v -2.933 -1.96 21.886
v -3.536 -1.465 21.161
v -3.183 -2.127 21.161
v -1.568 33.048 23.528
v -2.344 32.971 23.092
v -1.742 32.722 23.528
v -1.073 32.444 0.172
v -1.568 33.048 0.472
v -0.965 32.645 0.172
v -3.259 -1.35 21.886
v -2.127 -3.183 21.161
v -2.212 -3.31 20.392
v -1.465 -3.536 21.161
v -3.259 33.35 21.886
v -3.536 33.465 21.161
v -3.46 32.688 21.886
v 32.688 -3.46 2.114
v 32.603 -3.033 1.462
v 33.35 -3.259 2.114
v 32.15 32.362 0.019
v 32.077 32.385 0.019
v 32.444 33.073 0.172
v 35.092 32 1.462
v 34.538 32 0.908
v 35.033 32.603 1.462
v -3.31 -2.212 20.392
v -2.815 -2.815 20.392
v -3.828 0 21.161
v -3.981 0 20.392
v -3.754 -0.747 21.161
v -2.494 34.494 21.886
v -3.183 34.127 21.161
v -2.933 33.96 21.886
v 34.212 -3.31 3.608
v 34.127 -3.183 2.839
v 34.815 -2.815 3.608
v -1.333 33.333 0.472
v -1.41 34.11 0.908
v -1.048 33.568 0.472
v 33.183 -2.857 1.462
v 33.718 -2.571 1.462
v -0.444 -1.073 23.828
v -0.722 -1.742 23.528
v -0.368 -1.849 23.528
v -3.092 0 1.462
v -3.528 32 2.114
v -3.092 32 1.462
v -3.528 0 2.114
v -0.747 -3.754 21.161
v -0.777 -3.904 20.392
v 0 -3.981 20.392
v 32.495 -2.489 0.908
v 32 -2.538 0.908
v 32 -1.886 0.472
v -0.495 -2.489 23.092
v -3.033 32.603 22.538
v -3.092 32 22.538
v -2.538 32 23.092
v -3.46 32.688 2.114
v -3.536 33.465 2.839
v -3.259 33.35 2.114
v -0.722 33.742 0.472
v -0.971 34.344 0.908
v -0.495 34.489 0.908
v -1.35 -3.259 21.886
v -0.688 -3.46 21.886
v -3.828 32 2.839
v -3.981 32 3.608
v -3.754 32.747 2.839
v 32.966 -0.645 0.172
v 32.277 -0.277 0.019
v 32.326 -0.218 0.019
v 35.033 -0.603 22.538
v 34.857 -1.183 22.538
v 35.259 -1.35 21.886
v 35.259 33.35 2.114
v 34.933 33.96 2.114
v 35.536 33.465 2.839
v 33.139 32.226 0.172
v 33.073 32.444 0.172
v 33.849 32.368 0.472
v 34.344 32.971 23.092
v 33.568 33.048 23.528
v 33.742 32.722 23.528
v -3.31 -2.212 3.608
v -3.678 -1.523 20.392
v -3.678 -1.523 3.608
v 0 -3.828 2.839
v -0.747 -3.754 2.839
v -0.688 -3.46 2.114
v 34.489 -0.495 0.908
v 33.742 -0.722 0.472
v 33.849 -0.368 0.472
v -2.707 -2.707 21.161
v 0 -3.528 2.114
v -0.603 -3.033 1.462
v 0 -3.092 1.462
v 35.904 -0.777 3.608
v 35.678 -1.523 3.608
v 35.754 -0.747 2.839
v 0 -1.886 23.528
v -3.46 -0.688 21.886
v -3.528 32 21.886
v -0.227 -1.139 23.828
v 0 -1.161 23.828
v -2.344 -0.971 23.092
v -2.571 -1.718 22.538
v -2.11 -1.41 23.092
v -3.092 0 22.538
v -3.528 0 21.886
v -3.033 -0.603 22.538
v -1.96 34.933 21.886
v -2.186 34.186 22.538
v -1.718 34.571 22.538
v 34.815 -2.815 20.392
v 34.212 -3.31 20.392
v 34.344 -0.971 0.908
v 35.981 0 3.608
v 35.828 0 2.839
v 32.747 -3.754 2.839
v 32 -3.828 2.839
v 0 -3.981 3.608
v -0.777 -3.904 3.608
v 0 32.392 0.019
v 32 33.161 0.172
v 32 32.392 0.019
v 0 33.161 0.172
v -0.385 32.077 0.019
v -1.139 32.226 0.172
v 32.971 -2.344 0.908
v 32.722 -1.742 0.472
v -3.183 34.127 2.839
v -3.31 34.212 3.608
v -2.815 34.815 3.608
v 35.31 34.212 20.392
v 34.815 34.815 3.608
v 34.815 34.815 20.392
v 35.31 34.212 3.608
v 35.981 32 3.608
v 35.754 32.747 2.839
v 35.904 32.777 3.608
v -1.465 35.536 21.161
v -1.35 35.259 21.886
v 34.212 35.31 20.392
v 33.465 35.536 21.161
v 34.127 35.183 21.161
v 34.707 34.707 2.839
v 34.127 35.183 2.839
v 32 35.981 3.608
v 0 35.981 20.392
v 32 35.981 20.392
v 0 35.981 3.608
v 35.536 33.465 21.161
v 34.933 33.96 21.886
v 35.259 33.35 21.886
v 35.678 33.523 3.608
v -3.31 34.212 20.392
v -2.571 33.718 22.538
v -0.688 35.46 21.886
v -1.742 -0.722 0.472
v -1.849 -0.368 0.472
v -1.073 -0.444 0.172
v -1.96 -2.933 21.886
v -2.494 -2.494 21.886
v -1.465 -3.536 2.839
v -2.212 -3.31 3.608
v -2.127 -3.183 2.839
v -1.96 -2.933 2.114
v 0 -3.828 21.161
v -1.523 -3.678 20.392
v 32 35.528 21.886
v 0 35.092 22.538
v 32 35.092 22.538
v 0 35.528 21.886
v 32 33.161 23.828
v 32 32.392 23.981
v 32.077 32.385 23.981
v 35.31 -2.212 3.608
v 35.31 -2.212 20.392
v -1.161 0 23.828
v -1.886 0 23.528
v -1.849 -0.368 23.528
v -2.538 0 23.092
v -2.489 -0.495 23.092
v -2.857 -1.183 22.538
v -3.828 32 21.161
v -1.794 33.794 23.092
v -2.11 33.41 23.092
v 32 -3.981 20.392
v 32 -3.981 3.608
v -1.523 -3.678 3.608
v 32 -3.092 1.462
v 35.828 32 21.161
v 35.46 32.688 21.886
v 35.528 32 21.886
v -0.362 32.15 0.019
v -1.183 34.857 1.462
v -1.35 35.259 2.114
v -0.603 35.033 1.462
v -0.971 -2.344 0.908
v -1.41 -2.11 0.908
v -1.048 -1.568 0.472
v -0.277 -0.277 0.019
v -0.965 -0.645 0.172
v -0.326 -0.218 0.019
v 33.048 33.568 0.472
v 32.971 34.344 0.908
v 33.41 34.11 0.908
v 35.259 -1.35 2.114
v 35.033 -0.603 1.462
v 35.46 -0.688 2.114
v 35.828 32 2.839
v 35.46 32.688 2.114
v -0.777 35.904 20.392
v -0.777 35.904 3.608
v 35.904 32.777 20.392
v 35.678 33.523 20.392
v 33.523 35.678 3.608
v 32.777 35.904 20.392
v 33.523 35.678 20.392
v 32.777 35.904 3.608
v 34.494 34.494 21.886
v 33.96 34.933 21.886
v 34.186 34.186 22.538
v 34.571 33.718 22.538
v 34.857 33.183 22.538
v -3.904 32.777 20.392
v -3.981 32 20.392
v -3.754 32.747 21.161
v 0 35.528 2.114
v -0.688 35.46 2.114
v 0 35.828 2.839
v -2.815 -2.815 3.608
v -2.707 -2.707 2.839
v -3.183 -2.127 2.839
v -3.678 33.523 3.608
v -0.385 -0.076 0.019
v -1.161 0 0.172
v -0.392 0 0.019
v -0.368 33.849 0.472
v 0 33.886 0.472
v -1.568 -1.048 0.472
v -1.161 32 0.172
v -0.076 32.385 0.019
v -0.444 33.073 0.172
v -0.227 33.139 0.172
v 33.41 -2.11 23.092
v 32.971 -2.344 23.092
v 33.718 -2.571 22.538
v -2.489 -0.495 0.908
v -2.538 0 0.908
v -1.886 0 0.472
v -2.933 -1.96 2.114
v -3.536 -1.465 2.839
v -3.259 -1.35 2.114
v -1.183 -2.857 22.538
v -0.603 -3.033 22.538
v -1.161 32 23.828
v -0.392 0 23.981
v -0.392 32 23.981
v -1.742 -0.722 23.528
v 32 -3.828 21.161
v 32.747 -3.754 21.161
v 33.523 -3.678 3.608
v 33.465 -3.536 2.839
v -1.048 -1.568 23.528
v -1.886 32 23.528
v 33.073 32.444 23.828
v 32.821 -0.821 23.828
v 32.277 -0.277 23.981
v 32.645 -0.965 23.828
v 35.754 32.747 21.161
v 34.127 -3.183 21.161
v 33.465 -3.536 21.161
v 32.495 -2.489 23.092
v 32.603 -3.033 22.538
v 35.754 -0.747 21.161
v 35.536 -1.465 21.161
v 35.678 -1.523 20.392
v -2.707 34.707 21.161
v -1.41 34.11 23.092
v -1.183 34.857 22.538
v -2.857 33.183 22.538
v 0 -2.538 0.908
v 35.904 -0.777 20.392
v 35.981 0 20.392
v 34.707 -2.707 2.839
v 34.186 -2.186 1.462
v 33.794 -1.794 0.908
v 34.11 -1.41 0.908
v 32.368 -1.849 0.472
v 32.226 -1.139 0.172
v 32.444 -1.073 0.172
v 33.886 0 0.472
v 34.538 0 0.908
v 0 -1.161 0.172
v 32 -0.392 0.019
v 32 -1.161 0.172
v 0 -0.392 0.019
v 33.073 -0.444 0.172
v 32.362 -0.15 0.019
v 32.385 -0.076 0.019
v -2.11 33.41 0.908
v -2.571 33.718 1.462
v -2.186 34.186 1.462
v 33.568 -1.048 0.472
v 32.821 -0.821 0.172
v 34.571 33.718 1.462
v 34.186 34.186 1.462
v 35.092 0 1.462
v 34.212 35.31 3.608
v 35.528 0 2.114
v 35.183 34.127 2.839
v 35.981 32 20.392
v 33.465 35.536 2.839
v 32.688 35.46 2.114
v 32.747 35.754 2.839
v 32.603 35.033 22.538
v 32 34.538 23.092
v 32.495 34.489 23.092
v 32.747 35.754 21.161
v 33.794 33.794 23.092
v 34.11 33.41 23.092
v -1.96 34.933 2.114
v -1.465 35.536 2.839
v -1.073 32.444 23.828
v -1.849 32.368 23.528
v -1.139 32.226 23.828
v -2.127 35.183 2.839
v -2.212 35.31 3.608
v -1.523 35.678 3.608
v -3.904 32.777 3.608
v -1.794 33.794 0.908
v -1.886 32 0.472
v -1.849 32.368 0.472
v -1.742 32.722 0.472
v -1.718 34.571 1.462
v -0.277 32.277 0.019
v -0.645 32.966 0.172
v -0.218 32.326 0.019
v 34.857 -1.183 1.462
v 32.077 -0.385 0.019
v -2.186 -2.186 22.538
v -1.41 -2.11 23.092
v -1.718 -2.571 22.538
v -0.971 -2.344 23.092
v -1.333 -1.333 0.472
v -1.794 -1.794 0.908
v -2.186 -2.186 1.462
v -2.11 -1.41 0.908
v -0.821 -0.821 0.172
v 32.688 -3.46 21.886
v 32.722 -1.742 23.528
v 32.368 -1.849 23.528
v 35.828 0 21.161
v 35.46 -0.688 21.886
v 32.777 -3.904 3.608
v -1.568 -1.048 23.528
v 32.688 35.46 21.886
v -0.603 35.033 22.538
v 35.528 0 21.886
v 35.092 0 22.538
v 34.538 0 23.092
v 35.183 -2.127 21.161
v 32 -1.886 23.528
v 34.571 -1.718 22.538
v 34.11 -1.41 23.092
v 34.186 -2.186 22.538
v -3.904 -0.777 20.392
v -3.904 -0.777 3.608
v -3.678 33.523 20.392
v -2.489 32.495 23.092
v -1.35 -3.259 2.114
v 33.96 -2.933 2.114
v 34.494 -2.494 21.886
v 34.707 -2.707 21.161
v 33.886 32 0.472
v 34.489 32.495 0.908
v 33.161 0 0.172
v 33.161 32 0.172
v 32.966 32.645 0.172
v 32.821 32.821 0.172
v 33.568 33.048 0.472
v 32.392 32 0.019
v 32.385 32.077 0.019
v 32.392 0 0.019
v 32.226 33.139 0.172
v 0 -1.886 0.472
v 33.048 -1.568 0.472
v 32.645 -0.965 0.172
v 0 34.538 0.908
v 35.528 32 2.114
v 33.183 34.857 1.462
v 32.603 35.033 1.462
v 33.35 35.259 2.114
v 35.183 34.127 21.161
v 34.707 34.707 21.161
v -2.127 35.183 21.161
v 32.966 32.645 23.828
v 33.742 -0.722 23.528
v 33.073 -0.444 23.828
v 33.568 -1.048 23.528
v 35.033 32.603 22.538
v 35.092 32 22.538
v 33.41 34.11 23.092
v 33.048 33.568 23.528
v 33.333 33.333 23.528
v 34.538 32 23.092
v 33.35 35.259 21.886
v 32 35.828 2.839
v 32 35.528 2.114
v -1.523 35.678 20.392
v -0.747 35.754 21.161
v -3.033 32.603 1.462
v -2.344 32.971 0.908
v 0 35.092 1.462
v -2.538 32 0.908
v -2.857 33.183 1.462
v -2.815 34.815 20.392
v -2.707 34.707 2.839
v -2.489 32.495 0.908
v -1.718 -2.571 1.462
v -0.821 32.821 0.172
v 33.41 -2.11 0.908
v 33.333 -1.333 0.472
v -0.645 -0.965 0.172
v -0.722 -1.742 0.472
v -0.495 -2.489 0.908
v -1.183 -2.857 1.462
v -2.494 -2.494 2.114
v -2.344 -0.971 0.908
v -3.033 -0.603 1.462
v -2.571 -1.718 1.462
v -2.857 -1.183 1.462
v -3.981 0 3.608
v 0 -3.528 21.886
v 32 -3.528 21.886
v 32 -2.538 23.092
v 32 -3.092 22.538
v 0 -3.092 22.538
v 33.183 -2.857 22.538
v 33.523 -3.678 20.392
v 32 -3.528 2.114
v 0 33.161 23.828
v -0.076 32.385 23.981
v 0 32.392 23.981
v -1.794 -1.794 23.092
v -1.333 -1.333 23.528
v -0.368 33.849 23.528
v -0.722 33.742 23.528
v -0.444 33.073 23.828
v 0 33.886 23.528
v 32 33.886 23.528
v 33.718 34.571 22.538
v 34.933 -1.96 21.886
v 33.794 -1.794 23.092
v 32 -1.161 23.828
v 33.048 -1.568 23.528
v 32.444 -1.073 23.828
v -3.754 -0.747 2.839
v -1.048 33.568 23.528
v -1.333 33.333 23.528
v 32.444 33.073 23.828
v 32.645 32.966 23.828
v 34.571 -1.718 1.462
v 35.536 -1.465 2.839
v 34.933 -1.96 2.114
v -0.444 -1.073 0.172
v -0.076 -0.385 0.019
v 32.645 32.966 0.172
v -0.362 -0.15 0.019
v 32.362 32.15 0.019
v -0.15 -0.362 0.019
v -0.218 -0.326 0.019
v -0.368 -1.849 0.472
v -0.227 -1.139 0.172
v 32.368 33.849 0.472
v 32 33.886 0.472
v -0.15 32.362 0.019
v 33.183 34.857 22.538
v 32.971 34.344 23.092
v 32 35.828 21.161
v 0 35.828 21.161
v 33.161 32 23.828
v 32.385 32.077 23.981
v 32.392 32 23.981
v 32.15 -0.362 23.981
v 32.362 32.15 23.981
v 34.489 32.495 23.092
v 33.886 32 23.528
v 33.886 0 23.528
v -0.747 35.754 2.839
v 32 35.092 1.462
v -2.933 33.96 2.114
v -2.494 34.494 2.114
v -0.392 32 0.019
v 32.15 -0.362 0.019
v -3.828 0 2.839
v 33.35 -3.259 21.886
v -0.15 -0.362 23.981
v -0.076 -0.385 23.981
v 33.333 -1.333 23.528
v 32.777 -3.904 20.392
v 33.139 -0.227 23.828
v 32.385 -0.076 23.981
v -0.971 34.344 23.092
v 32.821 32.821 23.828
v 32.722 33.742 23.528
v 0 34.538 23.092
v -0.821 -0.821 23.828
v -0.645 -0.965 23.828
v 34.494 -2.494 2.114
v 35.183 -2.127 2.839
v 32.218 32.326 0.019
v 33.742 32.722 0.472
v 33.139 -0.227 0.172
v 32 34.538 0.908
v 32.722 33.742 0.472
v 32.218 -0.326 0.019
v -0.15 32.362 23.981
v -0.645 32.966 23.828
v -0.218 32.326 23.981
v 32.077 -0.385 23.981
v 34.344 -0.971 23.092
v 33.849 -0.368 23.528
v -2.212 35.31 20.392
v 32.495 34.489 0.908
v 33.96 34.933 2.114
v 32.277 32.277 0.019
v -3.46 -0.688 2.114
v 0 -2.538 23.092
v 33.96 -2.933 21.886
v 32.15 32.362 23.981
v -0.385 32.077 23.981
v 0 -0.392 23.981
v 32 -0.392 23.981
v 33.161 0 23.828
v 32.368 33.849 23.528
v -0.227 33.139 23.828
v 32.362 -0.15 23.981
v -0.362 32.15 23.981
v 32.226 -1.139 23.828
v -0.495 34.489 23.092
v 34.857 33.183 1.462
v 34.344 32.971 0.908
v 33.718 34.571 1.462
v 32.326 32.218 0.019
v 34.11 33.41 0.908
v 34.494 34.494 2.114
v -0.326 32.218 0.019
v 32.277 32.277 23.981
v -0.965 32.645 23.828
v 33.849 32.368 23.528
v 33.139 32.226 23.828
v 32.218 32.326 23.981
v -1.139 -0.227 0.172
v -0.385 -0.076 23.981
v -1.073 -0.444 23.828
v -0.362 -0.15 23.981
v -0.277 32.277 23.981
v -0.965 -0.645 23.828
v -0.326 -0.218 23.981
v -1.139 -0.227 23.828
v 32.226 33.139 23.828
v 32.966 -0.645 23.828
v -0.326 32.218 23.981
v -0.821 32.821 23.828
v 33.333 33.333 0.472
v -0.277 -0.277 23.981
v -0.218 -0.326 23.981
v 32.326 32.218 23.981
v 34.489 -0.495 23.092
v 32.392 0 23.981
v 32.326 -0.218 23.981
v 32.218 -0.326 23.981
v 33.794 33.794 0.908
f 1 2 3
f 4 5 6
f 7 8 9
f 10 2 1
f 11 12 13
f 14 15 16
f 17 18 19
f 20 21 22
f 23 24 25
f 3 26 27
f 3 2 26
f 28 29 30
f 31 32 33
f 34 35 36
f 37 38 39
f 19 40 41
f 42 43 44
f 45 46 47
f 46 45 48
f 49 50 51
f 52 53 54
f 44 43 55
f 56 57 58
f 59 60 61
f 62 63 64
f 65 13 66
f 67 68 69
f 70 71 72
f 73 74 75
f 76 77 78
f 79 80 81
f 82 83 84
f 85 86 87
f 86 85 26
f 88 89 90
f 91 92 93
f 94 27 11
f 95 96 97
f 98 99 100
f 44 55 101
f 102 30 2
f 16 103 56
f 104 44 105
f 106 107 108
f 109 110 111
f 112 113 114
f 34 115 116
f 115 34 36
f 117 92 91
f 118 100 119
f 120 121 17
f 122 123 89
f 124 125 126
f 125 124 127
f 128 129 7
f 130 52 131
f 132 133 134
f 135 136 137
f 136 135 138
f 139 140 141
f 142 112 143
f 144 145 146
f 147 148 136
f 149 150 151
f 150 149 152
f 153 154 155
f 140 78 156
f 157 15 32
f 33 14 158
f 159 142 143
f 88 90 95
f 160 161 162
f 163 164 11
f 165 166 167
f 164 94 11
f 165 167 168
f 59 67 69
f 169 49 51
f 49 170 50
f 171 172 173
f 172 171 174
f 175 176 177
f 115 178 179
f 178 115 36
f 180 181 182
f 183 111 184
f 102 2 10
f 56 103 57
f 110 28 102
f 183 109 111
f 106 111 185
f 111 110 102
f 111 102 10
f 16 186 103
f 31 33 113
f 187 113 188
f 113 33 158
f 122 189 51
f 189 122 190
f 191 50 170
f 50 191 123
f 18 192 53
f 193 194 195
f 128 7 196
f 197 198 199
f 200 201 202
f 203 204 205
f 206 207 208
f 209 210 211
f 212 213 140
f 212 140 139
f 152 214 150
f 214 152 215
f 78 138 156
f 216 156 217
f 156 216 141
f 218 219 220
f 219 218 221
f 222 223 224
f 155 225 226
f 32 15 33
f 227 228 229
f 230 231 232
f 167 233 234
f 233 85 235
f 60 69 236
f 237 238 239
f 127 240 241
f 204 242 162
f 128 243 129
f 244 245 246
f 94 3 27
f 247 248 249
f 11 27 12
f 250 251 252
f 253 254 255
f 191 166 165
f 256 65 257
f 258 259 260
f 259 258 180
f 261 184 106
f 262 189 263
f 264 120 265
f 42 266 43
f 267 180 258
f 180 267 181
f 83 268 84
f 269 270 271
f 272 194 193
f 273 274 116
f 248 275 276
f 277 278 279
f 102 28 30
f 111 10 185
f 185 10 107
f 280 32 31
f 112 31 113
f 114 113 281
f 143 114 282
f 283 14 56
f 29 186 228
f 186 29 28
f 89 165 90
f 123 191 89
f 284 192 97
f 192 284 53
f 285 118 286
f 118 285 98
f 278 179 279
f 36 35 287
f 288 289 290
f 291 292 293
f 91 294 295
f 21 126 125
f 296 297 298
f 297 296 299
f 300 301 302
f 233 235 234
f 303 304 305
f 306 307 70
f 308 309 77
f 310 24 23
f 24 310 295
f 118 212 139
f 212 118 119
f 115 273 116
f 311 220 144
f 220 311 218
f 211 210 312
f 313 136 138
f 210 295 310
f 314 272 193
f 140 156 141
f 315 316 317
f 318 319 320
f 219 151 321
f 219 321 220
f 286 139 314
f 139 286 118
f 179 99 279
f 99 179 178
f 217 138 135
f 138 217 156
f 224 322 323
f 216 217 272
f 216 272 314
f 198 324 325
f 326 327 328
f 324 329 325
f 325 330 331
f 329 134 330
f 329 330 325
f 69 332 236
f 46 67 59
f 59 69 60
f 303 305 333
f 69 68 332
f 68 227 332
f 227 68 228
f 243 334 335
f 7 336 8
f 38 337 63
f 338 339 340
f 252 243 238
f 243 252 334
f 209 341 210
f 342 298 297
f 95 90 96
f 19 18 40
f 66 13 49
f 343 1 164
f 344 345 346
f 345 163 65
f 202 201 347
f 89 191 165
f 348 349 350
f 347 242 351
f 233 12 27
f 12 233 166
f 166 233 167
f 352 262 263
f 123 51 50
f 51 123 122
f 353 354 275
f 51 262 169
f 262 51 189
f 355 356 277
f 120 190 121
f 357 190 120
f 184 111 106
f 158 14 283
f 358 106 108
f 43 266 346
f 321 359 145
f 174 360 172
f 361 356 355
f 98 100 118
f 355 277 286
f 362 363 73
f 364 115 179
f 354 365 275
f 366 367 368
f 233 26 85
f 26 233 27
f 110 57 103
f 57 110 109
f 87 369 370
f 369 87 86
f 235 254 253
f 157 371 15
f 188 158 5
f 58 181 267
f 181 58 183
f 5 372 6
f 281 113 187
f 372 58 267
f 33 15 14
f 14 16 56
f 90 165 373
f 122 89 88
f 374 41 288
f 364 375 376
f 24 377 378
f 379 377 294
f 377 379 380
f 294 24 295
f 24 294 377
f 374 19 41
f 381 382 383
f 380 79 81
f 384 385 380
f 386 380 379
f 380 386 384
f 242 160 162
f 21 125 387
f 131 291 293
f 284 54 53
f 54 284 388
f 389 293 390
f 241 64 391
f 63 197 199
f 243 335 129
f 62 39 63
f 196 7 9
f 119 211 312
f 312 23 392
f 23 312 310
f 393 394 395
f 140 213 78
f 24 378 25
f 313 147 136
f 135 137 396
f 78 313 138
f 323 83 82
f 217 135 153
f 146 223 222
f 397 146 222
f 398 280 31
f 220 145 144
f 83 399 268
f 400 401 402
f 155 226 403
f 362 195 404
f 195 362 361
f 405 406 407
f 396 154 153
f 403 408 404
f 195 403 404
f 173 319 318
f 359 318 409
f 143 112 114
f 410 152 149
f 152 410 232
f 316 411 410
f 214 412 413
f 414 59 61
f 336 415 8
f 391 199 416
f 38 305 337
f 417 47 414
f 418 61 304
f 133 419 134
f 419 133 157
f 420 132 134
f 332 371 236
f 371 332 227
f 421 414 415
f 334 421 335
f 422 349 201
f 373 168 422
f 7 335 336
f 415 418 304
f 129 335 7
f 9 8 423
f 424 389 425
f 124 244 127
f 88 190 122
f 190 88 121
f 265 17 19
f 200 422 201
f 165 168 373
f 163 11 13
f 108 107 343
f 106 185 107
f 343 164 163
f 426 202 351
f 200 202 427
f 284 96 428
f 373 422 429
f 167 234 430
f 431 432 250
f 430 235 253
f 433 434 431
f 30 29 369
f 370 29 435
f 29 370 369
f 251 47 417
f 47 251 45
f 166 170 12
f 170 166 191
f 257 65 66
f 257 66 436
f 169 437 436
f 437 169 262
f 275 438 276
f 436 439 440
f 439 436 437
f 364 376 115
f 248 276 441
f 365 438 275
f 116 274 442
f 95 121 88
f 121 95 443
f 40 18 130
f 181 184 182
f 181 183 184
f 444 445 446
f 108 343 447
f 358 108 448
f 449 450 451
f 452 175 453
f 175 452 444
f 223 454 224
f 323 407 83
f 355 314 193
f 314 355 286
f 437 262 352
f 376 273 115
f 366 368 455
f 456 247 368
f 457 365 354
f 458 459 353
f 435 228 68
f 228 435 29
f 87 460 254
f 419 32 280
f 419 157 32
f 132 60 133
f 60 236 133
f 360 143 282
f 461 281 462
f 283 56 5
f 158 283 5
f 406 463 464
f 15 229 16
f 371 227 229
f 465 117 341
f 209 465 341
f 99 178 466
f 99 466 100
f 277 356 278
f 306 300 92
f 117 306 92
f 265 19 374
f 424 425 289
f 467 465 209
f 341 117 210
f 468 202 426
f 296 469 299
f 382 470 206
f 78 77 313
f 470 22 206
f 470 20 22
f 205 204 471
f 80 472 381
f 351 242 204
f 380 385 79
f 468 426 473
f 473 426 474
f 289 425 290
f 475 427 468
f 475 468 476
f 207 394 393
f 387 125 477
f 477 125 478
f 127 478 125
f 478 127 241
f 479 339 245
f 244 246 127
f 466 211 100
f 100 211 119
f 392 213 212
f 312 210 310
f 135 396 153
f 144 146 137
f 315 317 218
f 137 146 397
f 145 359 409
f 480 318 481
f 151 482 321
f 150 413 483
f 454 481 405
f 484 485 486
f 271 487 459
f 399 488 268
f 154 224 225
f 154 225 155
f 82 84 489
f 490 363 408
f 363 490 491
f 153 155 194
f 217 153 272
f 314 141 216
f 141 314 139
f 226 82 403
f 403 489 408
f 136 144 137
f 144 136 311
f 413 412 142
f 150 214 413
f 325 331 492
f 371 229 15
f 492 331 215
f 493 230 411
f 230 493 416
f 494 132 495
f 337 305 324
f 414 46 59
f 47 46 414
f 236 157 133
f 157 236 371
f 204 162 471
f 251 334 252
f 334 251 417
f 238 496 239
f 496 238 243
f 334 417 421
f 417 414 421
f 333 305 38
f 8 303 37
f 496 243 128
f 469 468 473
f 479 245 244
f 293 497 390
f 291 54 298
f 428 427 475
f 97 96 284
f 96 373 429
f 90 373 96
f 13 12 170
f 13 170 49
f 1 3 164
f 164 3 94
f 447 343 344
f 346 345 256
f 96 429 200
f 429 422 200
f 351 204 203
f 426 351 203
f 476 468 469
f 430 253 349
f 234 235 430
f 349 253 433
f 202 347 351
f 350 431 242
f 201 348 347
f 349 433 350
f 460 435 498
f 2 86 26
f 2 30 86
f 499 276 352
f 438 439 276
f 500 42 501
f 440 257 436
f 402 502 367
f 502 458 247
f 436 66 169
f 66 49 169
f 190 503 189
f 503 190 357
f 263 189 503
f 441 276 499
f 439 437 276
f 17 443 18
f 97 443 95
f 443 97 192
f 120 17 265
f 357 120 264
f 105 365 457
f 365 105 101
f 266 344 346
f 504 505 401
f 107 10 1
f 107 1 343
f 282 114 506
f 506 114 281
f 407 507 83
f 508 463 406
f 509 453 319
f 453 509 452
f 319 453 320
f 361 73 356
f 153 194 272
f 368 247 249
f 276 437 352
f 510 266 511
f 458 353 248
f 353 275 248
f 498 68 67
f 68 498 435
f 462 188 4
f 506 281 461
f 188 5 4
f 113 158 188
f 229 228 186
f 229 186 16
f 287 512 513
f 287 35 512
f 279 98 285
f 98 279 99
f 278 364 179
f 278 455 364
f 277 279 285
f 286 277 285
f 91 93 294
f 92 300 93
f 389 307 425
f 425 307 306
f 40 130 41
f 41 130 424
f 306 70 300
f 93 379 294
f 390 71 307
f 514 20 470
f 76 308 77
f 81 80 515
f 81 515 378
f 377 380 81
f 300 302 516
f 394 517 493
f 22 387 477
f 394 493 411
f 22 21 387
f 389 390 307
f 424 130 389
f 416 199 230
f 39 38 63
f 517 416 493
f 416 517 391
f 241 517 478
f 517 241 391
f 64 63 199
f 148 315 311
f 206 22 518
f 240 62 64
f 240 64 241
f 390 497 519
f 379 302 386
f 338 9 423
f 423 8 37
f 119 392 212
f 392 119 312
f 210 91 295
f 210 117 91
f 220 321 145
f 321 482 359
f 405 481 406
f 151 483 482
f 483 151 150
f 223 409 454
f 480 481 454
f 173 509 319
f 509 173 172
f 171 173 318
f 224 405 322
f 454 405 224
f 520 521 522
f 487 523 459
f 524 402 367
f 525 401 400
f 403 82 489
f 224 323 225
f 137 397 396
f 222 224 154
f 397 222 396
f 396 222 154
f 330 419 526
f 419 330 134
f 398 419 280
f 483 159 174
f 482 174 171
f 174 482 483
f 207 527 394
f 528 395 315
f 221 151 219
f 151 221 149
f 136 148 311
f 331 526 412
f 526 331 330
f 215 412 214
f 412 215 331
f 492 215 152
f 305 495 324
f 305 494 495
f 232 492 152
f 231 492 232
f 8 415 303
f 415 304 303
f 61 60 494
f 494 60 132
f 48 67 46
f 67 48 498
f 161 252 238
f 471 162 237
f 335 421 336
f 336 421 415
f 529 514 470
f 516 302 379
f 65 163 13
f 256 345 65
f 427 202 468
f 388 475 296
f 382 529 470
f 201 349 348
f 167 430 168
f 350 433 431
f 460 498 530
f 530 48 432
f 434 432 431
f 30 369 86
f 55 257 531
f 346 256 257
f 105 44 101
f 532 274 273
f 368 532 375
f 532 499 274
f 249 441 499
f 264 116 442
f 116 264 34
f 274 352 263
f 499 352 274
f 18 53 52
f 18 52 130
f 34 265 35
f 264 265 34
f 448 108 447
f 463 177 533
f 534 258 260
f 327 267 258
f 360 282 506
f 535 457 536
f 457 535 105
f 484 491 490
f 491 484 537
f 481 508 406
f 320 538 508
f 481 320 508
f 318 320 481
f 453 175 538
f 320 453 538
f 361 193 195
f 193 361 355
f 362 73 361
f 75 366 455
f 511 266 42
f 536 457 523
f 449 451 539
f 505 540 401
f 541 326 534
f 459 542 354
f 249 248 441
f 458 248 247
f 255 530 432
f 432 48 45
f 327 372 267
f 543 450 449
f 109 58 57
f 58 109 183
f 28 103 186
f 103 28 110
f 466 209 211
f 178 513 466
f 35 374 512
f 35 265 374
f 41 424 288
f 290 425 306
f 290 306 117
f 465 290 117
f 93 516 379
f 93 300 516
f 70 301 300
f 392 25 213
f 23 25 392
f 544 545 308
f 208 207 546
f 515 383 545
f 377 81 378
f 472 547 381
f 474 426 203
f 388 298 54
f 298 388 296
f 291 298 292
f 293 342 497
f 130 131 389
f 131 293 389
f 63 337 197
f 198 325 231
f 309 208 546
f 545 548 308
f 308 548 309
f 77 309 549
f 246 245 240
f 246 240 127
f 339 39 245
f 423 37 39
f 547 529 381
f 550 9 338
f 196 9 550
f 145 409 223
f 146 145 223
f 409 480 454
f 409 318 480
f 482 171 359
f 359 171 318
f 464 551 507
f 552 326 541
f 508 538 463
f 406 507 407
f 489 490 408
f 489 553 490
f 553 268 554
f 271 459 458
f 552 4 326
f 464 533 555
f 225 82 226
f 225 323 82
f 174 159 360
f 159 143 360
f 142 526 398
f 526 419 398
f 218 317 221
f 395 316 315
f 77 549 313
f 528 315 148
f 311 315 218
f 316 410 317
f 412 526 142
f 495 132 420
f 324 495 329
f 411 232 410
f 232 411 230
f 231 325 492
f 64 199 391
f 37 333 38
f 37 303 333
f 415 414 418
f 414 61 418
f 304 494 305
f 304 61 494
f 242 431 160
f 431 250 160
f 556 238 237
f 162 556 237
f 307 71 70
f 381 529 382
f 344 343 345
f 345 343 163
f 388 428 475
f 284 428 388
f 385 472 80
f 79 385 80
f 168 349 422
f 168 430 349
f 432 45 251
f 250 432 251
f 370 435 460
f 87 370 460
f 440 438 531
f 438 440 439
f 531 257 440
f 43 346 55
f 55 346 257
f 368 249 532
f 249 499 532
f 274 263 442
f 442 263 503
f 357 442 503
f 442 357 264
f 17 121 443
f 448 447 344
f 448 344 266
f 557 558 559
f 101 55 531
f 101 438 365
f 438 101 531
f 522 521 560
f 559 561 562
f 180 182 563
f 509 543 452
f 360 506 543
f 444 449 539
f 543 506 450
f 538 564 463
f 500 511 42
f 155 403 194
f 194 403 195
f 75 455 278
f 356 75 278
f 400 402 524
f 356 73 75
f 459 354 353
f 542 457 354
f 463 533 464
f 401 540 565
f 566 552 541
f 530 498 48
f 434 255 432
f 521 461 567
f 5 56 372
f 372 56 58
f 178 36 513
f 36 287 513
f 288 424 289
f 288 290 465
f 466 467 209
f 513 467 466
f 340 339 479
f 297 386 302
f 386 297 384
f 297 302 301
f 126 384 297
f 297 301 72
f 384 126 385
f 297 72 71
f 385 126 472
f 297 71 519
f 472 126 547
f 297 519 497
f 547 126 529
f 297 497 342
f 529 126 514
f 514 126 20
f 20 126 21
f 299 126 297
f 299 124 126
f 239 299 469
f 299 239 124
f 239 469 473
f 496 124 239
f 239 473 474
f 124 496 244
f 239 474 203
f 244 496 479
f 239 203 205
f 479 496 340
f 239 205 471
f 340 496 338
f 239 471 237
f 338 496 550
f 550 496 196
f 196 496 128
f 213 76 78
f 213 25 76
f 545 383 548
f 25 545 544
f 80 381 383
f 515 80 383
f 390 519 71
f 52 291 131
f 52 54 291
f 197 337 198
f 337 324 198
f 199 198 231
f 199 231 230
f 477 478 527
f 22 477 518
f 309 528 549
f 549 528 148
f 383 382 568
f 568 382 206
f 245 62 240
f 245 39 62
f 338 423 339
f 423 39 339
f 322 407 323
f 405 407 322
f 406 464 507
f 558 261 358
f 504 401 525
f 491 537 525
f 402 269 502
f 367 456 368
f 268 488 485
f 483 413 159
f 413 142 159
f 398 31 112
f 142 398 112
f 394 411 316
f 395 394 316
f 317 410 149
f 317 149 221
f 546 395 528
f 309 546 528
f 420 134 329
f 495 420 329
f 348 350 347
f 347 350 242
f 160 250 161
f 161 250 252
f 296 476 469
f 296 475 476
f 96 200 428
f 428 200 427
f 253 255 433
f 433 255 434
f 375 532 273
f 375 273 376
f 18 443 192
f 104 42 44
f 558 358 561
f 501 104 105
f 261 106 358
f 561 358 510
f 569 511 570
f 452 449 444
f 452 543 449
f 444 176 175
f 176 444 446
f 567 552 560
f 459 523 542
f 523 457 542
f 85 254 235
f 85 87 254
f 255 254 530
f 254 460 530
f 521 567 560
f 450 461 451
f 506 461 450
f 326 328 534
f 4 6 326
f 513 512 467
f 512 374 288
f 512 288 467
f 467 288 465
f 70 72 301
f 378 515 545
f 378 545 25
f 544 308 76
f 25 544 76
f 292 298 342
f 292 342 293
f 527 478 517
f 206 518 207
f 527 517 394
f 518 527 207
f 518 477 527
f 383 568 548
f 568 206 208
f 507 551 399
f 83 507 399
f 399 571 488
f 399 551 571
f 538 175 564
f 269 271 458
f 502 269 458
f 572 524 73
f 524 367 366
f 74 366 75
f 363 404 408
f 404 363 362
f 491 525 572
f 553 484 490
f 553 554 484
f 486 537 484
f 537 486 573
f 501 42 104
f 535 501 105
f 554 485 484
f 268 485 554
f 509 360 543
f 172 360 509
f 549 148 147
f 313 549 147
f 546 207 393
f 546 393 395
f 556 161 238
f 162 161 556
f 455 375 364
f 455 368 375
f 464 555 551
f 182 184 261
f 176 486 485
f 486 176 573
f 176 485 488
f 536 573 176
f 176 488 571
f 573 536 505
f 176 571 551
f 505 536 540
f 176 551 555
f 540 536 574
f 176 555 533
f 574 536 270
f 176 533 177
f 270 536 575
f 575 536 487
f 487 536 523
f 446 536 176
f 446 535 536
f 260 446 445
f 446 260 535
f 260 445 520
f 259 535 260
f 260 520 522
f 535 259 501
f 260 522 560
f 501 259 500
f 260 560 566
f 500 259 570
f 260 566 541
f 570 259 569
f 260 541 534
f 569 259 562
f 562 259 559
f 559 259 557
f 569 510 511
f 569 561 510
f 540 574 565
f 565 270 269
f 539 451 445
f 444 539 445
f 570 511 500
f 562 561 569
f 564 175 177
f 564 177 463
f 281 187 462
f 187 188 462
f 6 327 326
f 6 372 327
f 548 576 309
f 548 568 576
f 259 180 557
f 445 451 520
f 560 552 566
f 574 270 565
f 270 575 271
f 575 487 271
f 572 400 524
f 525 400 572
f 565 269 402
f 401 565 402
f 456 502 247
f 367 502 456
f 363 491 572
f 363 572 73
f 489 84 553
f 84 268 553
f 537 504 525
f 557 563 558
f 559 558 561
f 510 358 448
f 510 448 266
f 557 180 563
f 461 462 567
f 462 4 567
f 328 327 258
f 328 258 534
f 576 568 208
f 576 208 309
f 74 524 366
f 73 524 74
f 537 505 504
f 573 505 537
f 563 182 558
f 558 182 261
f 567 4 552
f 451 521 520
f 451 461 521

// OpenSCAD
// Parameters
block_length = 40;
block_width = 40;
block_height = 20;
fillet_radius = 4;

// Create the rounded edge block
module rounded_edge_block() {
    // Create a cube with rounded top edges using Minkowski sum
    difference() {
        minkowski() {
            // Base cube with reduced height to allow rounding only on top
            translate([0, 0, fillet_radius])
                cube([block_length - 2*fillet_radius, block_width - 2*fillet_radius, block_height - fillet_radius], center=false);
            // Sphere for rounding
            sphere(r=fillet_radius, $fn=32);
        }
        // Cut the bottom to keep it flat and sharp
        translate([-10, -10, -10])
            cube([block_length + 20, block_width + 20, fillet_radius], center=false);
    }
}

// Render the model
rounded_edge_block();
